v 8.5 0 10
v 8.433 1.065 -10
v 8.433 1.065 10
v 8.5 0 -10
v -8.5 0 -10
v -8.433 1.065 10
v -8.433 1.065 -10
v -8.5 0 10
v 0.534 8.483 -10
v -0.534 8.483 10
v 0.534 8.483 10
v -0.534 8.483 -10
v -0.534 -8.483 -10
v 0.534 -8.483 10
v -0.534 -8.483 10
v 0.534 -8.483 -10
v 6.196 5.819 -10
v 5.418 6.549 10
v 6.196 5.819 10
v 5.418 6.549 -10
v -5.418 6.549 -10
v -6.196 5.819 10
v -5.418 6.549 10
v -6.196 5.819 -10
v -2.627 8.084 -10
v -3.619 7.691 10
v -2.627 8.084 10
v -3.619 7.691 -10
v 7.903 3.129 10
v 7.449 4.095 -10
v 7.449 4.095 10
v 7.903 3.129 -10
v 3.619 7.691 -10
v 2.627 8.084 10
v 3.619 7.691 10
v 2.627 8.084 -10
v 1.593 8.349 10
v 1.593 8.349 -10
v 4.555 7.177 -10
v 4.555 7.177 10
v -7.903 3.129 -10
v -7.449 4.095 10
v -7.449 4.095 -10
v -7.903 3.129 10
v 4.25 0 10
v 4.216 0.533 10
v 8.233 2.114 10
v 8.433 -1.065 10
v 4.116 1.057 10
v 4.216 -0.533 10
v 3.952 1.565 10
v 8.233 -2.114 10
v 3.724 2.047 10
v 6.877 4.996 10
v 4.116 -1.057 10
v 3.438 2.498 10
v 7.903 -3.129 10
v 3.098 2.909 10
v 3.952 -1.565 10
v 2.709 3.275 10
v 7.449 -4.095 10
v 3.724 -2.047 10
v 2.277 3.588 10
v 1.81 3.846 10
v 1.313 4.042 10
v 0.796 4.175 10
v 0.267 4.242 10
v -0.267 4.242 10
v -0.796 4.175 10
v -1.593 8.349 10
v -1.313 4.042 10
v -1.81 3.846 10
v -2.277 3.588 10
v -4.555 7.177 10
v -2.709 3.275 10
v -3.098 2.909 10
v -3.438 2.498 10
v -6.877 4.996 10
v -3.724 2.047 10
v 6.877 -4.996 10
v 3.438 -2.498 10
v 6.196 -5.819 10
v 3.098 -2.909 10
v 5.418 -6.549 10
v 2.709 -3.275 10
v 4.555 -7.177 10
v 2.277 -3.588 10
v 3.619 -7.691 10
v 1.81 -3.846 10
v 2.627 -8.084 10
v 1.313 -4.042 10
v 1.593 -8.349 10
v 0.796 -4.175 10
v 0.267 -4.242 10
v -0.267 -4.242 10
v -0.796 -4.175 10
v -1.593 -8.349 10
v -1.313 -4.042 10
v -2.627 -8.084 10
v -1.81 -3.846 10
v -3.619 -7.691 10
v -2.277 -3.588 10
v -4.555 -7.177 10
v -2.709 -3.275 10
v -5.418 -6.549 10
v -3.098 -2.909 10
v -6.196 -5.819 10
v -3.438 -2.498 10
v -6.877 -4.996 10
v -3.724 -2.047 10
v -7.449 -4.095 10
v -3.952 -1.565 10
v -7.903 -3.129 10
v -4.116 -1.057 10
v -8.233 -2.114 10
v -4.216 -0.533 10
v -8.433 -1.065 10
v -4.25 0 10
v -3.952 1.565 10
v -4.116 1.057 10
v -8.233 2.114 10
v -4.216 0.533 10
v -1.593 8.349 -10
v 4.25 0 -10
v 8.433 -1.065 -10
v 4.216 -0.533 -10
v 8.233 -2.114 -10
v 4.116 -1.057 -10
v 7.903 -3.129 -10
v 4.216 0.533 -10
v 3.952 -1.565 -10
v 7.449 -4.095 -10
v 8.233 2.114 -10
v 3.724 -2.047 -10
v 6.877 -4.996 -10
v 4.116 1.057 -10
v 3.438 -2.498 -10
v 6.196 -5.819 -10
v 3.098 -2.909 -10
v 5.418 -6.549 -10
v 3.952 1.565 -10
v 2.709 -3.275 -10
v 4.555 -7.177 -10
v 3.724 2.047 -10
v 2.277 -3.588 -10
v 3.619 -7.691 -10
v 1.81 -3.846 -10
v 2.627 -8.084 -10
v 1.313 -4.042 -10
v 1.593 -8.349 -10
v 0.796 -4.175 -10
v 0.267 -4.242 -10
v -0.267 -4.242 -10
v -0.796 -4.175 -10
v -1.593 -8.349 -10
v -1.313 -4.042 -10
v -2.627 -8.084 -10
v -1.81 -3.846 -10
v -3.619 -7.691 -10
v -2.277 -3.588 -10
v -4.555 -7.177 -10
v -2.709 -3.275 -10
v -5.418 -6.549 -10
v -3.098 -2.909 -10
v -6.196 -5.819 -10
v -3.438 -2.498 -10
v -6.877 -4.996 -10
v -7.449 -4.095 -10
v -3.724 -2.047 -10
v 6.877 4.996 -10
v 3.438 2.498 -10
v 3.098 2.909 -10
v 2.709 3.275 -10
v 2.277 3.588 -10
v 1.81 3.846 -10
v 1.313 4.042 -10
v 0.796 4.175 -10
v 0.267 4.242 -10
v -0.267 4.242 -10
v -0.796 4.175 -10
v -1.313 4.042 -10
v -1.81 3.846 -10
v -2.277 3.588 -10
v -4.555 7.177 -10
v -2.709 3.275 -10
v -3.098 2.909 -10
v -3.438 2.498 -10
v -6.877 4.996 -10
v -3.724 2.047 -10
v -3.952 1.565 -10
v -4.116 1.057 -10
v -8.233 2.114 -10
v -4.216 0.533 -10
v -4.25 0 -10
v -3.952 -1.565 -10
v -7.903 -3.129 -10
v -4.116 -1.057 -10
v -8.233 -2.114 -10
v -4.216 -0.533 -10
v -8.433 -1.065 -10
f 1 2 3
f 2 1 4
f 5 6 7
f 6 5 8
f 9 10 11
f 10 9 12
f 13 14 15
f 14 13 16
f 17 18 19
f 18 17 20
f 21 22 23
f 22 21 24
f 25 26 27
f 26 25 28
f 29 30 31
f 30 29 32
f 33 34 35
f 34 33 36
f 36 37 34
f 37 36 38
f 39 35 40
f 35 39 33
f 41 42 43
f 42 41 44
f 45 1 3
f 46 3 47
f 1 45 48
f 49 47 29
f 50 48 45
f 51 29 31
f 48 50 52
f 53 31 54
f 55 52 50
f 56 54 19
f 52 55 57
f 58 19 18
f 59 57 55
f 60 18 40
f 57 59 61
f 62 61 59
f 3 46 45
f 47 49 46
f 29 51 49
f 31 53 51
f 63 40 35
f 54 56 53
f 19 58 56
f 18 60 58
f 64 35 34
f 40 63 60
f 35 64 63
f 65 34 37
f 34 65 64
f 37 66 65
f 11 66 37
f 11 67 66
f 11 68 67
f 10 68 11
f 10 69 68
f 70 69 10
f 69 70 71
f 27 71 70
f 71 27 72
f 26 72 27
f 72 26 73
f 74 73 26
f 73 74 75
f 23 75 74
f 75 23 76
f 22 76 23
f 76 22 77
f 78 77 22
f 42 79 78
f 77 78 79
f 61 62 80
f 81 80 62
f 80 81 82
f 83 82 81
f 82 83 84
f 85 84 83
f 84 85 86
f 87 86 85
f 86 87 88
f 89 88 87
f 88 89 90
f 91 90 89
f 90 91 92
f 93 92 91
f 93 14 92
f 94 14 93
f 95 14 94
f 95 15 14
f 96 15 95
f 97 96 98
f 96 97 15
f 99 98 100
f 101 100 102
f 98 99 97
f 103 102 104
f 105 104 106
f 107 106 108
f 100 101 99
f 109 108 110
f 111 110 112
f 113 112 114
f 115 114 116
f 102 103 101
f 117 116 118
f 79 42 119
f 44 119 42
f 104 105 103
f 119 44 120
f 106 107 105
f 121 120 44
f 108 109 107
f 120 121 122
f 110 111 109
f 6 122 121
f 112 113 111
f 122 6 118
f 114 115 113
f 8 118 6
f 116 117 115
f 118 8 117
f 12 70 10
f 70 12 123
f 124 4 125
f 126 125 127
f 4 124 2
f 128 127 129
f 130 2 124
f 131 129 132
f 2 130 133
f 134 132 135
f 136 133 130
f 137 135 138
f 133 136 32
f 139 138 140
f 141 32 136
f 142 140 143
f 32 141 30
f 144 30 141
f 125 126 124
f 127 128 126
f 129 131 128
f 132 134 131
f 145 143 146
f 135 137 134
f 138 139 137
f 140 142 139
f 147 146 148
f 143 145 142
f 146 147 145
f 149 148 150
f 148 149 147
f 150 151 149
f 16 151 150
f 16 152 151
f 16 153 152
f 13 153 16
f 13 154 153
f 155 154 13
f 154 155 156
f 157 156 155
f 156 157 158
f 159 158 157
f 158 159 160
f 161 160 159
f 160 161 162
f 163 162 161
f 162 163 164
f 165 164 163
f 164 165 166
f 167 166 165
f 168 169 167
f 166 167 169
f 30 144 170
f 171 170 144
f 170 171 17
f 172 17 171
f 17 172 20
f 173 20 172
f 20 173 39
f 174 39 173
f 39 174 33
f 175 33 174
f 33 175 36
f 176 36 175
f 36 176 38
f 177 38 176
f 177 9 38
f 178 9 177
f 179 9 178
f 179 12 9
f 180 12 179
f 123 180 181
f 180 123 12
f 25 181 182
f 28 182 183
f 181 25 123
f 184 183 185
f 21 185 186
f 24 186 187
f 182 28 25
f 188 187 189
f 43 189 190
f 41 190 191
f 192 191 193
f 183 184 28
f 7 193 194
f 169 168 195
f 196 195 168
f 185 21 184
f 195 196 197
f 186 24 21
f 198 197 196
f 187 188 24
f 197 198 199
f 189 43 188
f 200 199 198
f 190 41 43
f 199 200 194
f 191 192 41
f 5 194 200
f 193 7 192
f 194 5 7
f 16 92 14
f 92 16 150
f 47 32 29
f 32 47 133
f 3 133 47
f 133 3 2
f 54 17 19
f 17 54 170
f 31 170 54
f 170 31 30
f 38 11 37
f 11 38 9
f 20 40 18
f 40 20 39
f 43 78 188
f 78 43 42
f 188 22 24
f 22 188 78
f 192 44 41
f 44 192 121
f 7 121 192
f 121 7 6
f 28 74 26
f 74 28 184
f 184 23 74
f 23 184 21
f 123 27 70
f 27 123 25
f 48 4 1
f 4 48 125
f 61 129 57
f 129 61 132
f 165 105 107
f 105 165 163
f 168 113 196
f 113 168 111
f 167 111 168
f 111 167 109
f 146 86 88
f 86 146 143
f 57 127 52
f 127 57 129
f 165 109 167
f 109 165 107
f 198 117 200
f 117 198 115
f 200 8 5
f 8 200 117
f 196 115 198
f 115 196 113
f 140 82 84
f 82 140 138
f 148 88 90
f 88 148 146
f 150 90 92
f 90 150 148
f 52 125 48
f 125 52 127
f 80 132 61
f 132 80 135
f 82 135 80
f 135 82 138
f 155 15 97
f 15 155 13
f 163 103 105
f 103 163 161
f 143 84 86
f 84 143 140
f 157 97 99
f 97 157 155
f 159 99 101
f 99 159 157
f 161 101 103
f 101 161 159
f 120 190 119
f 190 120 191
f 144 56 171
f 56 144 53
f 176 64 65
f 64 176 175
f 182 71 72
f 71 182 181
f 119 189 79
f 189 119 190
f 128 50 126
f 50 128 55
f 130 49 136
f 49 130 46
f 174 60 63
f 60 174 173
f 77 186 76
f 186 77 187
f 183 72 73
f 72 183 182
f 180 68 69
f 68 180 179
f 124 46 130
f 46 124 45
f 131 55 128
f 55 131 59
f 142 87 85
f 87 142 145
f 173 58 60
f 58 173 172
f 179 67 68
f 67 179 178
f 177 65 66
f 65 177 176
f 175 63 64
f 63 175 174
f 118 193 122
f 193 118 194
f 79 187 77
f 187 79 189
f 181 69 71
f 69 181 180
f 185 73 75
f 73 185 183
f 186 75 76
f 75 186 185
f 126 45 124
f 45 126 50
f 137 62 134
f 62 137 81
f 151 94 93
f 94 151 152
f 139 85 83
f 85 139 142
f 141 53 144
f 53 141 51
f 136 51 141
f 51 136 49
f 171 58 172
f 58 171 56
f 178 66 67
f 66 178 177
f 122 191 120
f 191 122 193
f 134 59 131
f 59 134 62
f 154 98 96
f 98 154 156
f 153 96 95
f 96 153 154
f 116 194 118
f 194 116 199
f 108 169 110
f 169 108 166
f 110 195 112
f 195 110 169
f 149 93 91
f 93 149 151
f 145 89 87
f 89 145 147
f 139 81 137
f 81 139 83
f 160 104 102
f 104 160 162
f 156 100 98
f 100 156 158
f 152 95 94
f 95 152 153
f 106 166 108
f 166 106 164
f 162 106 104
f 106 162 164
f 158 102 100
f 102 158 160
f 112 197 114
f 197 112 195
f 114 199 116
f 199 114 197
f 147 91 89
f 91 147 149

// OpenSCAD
$fn = 50;


difference() {
	union() {
		translate(v = [0, 0, -10.0000000000]) {
			cylinder(h = 20, r = 8.5000000000);
		}
	}
	union() {
		translate(v = [0, 0, -100.0000000000]) {
			cylinder(h = 200, r = 4.2500000000);
		}
	}
}
